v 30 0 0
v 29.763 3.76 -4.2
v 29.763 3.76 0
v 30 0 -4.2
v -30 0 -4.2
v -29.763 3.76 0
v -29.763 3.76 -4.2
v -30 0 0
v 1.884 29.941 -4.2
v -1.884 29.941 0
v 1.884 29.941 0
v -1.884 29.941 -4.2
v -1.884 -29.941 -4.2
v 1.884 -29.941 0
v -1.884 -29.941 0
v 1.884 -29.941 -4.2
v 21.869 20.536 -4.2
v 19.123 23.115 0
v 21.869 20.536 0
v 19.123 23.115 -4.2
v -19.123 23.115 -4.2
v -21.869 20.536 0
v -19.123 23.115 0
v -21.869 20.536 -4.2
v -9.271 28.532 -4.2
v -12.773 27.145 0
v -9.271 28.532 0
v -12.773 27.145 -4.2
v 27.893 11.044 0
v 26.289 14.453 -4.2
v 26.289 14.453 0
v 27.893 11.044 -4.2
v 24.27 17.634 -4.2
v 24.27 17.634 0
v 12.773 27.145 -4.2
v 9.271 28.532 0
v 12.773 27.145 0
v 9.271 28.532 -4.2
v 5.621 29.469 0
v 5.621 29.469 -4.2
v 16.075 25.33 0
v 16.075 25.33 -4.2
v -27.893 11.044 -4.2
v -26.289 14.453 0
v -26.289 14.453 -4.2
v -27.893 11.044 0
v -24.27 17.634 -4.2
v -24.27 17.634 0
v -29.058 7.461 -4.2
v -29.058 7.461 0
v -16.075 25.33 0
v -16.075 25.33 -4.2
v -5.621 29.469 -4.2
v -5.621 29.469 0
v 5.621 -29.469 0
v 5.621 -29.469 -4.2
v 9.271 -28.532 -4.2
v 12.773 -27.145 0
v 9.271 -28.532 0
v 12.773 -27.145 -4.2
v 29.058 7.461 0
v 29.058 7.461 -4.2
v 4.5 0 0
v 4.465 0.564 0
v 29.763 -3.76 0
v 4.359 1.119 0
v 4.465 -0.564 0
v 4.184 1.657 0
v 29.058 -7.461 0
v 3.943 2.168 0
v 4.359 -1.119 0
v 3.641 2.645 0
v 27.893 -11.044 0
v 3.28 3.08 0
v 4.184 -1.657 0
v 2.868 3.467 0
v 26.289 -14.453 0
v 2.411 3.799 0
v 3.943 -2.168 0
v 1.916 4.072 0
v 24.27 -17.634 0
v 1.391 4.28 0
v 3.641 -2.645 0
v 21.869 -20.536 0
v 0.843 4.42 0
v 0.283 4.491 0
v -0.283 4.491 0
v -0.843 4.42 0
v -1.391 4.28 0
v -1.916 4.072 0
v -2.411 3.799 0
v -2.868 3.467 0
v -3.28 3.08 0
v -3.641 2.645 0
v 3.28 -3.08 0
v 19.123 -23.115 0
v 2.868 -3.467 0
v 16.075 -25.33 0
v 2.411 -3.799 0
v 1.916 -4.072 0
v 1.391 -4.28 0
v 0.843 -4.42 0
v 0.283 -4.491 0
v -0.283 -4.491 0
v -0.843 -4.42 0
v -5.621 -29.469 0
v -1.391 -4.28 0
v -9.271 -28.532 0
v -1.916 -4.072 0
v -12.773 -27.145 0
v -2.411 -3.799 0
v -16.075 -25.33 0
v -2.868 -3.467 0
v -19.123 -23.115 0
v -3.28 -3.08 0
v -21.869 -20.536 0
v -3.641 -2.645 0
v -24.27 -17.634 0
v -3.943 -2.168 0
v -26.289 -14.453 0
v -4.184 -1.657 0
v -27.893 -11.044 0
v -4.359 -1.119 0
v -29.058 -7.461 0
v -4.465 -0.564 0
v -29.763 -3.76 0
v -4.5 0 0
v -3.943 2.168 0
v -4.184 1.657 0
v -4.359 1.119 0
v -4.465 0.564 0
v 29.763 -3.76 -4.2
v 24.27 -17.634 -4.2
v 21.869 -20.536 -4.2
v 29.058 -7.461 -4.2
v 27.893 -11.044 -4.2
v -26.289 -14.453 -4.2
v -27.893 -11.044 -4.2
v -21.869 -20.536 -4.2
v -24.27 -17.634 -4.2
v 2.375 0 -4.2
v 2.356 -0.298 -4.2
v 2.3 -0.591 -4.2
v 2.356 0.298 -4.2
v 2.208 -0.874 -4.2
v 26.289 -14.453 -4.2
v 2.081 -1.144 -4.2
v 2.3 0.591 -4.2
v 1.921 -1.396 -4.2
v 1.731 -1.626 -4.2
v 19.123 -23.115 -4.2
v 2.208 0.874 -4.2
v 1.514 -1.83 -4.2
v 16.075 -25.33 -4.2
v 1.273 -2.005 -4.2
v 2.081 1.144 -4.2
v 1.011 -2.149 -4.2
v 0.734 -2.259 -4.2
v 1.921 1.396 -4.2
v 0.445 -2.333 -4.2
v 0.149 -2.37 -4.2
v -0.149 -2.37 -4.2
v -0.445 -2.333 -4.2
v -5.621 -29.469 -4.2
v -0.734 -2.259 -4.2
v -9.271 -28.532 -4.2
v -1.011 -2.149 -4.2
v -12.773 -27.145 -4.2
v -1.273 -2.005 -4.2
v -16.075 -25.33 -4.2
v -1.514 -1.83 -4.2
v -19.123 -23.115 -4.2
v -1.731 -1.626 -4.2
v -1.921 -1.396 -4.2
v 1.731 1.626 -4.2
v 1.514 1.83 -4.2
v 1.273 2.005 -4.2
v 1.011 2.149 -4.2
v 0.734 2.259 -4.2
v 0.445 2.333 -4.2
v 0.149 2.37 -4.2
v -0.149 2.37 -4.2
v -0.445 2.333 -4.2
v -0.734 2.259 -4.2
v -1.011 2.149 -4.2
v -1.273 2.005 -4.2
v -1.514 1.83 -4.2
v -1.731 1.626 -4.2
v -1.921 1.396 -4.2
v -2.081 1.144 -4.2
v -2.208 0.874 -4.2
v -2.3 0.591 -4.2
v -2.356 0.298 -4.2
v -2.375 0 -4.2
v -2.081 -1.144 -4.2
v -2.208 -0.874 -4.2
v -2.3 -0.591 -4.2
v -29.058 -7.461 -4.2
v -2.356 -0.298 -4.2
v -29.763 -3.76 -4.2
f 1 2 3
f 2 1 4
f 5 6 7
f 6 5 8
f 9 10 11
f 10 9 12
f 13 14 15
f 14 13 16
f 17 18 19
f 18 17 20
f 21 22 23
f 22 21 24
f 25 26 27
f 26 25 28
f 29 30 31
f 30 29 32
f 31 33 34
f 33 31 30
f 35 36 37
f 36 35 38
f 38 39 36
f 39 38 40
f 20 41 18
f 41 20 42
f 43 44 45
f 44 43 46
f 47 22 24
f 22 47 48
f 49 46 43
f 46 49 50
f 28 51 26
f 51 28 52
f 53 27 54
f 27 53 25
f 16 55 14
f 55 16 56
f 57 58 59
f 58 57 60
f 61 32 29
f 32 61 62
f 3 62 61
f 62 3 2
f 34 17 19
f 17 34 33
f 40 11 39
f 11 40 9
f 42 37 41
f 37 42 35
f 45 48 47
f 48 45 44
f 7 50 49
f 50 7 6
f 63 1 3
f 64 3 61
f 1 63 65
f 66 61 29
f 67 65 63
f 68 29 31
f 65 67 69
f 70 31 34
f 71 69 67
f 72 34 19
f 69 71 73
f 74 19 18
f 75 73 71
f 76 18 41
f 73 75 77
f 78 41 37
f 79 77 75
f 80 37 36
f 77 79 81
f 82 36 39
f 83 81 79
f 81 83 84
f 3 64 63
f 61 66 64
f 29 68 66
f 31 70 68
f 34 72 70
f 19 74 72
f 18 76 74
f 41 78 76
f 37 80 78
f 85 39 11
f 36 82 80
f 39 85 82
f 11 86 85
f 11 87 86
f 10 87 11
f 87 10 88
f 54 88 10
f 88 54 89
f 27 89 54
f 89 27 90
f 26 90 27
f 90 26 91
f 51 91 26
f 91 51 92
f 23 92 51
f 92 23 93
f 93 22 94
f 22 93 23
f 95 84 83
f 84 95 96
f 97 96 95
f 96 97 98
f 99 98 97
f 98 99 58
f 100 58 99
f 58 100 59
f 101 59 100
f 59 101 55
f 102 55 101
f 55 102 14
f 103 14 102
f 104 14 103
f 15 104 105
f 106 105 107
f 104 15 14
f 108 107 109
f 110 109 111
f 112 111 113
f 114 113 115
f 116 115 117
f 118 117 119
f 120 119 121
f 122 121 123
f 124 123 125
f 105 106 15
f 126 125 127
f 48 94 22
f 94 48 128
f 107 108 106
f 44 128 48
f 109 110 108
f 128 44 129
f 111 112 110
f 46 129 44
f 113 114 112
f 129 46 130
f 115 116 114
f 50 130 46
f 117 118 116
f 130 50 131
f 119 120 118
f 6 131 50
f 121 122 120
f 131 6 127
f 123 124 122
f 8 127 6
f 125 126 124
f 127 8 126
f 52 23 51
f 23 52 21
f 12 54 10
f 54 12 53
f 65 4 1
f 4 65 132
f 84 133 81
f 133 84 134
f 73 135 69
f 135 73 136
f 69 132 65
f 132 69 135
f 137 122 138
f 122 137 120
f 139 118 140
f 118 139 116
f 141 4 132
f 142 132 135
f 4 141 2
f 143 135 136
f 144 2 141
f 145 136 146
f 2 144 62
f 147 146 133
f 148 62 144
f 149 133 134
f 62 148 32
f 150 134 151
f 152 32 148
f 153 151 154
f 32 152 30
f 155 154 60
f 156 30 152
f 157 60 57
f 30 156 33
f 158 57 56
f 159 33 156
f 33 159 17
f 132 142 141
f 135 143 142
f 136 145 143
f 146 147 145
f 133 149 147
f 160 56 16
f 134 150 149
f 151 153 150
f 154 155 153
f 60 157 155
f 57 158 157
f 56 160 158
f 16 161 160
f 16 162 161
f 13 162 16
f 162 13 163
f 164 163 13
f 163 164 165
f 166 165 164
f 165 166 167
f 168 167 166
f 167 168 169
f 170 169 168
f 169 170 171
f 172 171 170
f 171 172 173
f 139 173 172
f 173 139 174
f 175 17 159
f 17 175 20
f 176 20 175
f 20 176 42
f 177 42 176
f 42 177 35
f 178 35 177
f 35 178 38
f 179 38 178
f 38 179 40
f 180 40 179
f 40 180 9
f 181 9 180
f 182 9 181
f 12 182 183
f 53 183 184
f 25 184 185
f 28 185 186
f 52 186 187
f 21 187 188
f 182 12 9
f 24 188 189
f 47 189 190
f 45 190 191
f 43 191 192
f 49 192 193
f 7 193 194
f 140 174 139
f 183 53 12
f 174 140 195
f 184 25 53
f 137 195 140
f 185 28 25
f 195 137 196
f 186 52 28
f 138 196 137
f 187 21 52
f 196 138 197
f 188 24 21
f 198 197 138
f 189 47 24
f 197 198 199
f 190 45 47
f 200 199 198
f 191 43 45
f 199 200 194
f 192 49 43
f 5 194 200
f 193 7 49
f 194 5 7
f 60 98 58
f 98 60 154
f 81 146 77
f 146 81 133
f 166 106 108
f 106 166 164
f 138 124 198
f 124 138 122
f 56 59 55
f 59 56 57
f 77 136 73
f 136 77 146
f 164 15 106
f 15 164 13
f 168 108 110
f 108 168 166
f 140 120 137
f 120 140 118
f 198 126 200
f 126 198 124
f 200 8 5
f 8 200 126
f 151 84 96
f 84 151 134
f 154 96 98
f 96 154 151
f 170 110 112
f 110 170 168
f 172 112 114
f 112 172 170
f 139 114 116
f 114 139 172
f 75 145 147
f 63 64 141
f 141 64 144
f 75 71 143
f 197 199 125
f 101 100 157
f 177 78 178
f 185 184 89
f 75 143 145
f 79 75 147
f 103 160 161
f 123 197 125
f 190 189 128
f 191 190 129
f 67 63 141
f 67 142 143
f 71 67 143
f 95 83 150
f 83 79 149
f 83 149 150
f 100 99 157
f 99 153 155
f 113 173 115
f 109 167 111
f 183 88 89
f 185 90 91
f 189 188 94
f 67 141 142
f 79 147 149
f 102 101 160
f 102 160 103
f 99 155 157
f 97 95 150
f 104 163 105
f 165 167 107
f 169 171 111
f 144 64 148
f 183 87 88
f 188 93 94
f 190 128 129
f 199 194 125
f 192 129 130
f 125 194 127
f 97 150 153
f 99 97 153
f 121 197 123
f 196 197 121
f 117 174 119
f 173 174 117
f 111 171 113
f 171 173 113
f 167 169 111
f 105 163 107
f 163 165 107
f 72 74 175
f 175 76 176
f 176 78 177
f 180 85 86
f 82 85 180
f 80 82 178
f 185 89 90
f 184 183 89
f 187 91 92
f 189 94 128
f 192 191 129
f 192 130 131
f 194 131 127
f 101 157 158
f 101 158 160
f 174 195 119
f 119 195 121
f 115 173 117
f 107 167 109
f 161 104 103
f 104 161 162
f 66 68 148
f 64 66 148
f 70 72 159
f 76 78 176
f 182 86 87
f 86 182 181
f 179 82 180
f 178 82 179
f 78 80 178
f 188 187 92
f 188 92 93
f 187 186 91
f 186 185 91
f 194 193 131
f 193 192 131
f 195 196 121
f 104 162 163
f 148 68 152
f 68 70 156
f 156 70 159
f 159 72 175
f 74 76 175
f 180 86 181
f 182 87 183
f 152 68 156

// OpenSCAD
$fn = 50;


difference() {
	union() {
		translate(v = [0, 0, -4.2000000000]) {
			cylinder(h = 4.2000000000, r = 30.0000000000);
		}
		translate(v = [0, 0, -4.2000000000]) {
			cylinder(h = 4.2000000000, r = 2.8750000000);
		}
	}
	union() {
		translate(v = [0, 0, 0]) {
			rotate(a = [0, 0, 0]) {
				difference() {
					union() {
						translate(v = [0, 0, -4.2000000000]) {
							cylinder(h = 4.2000000000, r = 2.2500000000);
						}
						translate(v = [0, 0, -4.2000000000]) {
							cylinder(h = 4.2000000000, r1 = 2.3750000000, r2 = 4.5000000000);
						}
						translate(v = [0, 0, -4.2000000000]) {
							cylinder(h = 4.2000000000, r = 2.3750000000);
						}
						translate(v = [0, 0, -4.2000000000]) {
							cylinder(h = 4.2000000000, r = 2.2500000000);
						}
					}
					union();
				}
			}
		}
	}
}
